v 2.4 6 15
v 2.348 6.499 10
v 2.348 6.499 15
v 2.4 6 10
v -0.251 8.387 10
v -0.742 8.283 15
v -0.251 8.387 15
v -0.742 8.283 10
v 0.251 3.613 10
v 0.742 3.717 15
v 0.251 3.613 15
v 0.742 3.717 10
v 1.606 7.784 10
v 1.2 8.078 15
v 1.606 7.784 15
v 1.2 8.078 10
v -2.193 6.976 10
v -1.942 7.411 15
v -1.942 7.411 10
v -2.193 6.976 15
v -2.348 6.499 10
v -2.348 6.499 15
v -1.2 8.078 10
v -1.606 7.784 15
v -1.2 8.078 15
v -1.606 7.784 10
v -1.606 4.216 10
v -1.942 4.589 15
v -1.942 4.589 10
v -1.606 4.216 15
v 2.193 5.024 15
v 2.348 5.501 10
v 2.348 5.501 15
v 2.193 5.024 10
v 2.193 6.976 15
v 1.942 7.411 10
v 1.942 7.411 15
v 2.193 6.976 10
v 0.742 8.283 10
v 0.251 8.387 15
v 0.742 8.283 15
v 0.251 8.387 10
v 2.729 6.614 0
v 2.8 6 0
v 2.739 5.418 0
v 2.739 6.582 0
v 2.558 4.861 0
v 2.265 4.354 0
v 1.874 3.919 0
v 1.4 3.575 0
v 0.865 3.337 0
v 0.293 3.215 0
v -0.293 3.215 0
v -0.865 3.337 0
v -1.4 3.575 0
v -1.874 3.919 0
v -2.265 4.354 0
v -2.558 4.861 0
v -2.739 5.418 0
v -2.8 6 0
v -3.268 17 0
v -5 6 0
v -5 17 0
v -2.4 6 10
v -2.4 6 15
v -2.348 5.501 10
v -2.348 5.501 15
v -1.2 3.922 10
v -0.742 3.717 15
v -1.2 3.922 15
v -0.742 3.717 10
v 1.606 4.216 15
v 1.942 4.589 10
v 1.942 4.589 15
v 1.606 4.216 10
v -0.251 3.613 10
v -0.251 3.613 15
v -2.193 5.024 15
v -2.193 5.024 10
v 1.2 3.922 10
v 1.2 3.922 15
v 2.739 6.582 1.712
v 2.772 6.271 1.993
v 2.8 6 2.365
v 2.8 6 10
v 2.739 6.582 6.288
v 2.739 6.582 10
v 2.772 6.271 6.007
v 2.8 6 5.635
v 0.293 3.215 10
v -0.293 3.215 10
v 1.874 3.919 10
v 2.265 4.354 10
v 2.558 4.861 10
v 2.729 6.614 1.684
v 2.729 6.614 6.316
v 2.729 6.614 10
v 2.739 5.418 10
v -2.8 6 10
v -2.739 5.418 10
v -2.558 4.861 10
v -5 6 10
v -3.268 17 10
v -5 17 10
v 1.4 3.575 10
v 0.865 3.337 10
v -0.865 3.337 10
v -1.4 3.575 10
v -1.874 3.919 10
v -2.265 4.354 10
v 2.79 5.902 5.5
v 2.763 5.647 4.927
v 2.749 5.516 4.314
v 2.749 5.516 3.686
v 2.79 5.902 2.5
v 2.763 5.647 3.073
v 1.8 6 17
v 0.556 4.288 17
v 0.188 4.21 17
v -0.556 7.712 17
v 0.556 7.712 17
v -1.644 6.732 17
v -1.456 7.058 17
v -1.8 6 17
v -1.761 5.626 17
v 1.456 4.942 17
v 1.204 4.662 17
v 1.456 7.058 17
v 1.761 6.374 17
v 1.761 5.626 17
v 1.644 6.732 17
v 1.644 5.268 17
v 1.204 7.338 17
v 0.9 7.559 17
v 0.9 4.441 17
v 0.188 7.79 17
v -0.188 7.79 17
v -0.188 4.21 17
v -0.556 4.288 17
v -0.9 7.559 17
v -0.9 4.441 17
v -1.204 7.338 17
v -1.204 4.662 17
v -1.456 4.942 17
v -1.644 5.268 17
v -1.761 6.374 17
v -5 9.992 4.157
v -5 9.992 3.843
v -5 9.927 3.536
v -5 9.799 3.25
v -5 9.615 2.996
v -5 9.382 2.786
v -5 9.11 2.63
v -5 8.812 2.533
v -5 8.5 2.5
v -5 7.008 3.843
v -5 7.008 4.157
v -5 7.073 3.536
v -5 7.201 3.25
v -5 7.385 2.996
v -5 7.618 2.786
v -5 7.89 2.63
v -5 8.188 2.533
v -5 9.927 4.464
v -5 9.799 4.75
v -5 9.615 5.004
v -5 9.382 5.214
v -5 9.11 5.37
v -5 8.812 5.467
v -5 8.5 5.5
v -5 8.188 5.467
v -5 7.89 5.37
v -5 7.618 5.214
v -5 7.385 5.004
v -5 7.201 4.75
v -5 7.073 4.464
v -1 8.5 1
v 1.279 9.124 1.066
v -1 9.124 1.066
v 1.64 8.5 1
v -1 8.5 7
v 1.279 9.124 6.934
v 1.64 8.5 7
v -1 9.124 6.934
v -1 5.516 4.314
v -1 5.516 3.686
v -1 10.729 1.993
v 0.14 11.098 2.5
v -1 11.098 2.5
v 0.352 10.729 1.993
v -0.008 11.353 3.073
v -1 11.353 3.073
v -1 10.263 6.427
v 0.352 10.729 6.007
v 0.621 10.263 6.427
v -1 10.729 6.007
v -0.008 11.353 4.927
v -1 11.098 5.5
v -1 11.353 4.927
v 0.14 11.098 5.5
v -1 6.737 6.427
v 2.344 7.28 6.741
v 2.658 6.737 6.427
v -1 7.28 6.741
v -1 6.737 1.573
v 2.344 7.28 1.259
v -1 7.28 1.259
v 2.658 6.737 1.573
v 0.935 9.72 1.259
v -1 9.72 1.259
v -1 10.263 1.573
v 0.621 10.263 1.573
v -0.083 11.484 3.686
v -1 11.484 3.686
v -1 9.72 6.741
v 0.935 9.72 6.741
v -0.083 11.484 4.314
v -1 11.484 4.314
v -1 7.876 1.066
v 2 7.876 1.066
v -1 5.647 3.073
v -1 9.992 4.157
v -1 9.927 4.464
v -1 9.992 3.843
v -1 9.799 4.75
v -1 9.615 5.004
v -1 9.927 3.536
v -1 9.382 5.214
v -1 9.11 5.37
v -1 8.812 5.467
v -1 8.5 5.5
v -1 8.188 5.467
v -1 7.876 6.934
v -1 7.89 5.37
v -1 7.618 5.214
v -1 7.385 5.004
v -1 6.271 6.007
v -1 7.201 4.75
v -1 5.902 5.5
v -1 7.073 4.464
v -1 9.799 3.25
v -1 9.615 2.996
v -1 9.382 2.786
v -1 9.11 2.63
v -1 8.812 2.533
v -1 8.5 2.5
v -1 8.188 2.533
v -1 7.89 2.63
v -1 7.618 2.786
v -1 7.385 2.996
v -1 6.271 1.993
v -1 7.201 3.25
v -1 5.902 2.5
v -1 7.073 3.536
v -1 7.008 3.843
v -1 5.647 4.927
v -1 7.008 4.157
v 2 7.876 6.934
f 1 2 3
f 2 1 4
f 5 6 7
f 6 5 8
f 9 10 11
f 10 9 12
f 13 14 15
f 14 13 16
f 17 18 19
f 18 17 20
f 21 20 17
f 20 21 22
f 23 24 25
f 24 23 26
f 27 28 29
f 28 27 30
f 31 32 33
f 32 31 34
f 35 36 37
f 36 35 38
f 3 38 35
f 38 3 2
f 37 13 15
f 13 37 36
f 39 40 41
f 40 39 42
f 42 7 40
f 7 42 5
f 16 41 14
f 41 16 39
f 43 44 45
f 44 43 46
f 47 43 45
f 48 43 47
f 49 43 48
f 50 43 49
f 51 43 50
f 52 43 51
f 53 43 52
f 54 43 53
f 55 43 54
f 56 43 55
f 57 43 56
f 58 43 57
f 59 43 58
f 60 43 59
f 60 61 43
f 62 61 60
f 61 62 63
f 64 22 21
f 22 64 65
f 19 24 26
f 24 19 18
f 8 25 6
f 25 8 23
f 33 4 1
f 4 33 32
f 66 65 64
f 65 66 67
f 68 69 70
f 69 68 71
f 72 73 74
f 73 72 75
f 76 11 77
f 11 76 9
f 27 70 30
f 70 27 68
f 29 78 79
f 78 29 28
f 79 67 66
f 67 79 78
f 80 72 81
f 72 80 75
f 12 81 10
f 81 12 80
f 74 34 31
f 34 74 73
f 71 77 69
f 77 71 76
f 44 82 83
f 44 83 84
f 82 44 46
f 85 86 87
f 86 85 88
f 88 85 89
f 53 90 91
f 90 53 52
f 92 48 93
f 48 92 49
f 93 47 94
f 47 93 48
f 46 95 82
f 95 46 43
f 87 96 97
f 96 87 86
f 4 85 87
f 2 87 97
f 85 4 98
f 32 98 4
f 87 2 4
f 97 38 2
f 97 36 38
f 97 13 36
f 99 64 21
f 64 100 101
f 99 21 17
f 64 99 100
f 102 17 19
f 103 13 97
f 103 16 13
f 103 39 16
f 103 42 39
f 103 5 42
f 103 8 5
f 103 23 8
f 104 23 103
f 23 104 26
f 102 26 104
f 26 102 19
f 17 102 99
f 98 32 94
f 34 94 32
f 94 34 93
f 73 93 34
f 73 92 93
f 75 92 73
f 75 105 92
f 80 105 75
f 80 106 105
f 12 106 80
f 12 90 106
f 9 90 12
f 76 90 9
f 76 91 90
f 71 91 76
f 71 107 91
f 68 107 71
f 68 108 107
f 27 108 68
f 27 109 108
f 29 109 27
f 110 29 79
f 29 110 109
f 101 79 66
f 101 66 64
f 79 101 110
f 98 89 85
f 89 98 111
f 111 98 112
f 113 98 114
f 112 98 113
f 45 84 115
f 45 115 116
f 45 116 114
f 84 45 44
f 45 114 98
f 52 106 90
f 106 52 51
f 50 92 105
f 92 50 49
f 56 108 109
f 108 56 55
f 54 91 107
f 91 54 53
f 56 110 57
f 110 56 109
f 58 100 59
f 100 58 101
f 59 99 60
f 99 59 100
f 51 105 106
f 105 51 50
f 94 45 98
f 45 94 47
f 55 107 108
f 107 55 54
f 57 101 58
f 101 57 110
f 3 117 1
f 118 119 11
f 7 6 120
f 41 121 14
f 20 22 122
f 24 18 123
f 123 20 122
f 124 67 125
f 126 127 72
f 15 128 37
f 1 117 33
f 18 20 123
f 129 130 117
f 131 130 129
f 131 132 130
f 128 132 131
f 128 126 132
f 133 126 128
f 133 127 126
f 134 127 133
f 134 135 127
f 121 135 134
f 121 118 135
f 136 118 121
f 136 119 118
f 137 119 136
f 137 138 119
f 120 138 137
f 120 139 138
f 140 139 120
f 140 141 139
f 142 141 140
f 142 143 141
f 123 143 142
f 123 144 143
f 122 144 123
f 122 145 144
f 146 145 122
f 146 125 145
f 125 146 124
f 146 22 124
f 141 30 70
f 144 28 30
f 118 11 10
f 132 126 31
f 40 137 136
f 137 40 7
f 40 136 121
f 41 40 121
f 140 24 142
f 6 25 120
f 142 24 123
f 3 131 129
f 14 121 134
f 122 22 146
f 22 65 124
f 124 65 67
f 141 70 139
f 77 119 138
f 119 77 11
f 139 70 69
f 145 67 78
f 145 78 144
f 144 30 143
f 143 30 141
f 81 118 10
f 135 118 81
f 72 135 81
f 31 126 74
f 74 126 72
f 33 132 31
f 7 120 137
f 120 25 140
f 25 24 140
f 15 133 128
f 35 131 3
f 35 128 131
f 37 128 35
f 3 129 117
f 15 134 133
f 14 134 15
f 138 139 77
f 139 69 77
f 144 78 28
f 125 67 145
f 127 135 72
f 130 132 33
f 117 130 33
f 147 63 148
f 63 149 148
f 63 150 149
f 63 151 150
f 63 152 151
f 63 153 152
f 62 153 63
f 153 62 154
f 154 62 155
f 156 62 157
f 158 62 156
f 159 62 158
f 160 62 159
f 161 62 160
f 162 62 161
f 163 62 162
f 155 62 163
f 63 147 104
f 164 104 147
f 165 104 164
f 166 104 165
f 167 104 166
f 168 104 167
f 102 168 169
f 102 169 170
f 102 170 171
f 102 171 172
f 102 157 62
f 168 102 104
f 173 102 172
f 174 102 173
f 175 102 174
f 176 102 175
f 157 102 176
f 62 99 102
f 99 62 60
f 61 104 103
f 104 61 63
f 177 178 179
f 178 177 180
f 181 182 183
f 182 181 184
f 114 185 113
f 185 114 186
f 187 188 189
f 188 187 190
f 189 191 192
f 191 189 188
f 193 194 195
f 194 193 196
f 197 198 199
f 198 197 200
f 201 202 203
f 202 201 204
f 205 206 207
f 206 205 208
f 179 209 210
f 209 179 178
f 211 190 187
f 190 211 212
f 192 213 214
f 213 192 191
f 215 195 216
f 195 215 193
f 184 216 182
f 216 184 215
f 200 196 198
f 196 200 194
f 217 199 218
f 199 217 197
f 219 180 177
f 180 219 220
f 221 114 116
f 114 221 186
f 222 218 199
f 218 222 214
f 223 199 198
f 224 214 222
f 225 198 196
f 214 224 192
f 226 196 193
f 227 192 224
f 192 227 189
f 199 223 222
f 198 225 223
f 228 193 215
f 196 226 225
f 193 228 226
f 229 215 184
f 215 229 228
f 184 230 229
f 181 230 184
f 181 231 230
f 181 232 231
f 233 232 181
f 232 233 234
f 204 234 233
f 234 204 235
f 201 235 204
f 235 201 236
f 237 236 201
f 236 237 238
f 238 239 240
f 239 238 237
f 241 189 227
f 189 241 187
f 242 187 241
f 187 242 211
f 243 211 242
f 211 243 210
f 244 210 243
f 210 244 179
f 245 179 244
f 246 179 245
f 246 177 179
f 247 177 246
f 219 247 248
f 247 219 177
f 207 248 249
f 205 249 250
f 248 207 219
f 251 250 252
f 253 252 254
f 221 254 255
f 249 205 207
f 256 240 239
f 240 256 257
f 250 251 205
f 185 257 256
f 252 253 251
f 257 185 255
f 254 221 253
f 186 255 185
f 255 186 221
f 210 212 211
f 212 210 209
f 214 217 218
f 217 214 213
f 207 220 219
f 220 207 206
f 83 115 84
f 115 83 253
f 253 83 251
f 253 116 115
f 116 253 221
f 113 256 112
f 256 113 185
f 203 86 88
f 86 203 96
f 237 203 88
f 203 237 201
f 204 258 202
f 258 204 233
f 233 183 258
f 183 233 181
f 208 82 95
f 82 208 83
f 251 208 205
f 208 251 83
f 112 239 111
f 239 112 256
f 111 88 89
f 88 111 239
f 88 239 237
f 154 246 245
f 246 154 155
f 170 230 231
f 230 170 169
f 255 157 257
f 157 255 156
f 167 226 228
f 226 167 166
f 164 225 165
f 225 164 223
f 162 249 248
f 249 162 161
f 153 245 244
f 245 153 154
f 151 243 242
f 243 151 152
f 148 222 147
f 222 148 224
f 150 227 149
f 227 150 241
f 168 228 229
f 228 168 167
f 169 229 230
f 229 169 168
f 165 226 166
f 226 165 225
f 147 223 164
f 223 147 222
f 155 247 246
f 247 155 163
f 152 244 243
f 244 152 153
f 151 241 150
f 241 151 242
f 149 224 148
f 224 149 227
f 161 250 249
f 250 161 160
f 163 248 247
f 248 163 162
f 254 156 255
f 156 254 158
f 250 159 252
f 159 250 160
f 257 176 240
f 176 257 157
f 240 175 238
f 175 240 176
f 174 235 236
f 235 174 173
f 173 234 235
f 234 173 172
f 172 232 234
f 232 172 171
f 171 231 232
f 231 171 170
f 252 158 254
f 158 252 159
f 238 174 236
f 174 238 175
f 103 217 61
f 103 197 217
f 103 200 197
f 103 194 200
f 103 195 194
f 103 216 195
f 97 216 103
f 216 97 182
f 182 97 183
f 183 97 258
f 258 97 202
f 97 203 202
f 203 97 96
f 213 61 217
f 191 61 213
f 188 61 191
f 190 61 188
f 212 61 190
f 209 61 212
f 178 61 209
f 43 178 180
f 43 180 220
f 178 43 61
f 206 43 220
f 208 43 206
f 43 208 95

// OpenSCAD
//Original Prusa

// PRUSA iteration3
// RAMBo cover hinges
// GNU GPL v3
// Josef Průša <iam@josefprusa.cz> and contributors
// http://www.reprap.org/wiki/Prusa_Mendel
// http://prusamendel.org

module upper_hinge()
{
difference()    
{
    union(){
     cylinder( h = 26, r = 2.4, $fn=30); 
     translate([0,0,26]) cylinder( h = 2, r1 = 2.4, r2 = 1.8, $fn=30); 
     translate( [ -5 , -11 , 0 ] ) cube( [ 7 , 11 , 21 ] );  
    }
     translate( [ -12.5 , -2.5 , 17 ] ) rotate( [0,90,0] ) cylinder( h = 20, r = 1.7, $fn=30);  
     translate( [ -2 , -2.5 , 17 ] ) rotate( [0,90,0] ) cylinder( h = 9, r = 3, $fn=30); 
     translate([-2.9,-20,-1]) rotate([0,0,60]) cube([25,5,26]);   
}
}

module lower_hinge()
{
difference()
{   
   union(){ 
    translate( [ 0 , 6 , 0 ] ) cylinder( h = 15, r = 2.4, $fn=30); 
    translate( [ 0 , 6 , 0 ] ) cylinder( h = 10, r = 2.8, $fn=30);  
    translate( [ 0 , 6 , 15 ] ) cylinder( h = 2, r1 = 2.4, r2=1.8, $fn=30);  
    translate( [ -5 , 6 , 0 ] ) cube( [ 7 , 11 , 10 ] ); 
   }
    translate( [ -1 , 8.5 , 4 ] ) rotate( [0,90,0] ) cylinder( h = 20, r = 3, $fn=30); 
    translate( [ -12 , 8.5 , 4 ] ) rotate( [0,90,0] ) cylinder( h = 20, r = 1.5, $fn=30); 
    translate([-5,20,-1]) rotate([0,0,-60]) cube([20,5,20]);   
}
}


//upper_hinge();
lower_hinge();
